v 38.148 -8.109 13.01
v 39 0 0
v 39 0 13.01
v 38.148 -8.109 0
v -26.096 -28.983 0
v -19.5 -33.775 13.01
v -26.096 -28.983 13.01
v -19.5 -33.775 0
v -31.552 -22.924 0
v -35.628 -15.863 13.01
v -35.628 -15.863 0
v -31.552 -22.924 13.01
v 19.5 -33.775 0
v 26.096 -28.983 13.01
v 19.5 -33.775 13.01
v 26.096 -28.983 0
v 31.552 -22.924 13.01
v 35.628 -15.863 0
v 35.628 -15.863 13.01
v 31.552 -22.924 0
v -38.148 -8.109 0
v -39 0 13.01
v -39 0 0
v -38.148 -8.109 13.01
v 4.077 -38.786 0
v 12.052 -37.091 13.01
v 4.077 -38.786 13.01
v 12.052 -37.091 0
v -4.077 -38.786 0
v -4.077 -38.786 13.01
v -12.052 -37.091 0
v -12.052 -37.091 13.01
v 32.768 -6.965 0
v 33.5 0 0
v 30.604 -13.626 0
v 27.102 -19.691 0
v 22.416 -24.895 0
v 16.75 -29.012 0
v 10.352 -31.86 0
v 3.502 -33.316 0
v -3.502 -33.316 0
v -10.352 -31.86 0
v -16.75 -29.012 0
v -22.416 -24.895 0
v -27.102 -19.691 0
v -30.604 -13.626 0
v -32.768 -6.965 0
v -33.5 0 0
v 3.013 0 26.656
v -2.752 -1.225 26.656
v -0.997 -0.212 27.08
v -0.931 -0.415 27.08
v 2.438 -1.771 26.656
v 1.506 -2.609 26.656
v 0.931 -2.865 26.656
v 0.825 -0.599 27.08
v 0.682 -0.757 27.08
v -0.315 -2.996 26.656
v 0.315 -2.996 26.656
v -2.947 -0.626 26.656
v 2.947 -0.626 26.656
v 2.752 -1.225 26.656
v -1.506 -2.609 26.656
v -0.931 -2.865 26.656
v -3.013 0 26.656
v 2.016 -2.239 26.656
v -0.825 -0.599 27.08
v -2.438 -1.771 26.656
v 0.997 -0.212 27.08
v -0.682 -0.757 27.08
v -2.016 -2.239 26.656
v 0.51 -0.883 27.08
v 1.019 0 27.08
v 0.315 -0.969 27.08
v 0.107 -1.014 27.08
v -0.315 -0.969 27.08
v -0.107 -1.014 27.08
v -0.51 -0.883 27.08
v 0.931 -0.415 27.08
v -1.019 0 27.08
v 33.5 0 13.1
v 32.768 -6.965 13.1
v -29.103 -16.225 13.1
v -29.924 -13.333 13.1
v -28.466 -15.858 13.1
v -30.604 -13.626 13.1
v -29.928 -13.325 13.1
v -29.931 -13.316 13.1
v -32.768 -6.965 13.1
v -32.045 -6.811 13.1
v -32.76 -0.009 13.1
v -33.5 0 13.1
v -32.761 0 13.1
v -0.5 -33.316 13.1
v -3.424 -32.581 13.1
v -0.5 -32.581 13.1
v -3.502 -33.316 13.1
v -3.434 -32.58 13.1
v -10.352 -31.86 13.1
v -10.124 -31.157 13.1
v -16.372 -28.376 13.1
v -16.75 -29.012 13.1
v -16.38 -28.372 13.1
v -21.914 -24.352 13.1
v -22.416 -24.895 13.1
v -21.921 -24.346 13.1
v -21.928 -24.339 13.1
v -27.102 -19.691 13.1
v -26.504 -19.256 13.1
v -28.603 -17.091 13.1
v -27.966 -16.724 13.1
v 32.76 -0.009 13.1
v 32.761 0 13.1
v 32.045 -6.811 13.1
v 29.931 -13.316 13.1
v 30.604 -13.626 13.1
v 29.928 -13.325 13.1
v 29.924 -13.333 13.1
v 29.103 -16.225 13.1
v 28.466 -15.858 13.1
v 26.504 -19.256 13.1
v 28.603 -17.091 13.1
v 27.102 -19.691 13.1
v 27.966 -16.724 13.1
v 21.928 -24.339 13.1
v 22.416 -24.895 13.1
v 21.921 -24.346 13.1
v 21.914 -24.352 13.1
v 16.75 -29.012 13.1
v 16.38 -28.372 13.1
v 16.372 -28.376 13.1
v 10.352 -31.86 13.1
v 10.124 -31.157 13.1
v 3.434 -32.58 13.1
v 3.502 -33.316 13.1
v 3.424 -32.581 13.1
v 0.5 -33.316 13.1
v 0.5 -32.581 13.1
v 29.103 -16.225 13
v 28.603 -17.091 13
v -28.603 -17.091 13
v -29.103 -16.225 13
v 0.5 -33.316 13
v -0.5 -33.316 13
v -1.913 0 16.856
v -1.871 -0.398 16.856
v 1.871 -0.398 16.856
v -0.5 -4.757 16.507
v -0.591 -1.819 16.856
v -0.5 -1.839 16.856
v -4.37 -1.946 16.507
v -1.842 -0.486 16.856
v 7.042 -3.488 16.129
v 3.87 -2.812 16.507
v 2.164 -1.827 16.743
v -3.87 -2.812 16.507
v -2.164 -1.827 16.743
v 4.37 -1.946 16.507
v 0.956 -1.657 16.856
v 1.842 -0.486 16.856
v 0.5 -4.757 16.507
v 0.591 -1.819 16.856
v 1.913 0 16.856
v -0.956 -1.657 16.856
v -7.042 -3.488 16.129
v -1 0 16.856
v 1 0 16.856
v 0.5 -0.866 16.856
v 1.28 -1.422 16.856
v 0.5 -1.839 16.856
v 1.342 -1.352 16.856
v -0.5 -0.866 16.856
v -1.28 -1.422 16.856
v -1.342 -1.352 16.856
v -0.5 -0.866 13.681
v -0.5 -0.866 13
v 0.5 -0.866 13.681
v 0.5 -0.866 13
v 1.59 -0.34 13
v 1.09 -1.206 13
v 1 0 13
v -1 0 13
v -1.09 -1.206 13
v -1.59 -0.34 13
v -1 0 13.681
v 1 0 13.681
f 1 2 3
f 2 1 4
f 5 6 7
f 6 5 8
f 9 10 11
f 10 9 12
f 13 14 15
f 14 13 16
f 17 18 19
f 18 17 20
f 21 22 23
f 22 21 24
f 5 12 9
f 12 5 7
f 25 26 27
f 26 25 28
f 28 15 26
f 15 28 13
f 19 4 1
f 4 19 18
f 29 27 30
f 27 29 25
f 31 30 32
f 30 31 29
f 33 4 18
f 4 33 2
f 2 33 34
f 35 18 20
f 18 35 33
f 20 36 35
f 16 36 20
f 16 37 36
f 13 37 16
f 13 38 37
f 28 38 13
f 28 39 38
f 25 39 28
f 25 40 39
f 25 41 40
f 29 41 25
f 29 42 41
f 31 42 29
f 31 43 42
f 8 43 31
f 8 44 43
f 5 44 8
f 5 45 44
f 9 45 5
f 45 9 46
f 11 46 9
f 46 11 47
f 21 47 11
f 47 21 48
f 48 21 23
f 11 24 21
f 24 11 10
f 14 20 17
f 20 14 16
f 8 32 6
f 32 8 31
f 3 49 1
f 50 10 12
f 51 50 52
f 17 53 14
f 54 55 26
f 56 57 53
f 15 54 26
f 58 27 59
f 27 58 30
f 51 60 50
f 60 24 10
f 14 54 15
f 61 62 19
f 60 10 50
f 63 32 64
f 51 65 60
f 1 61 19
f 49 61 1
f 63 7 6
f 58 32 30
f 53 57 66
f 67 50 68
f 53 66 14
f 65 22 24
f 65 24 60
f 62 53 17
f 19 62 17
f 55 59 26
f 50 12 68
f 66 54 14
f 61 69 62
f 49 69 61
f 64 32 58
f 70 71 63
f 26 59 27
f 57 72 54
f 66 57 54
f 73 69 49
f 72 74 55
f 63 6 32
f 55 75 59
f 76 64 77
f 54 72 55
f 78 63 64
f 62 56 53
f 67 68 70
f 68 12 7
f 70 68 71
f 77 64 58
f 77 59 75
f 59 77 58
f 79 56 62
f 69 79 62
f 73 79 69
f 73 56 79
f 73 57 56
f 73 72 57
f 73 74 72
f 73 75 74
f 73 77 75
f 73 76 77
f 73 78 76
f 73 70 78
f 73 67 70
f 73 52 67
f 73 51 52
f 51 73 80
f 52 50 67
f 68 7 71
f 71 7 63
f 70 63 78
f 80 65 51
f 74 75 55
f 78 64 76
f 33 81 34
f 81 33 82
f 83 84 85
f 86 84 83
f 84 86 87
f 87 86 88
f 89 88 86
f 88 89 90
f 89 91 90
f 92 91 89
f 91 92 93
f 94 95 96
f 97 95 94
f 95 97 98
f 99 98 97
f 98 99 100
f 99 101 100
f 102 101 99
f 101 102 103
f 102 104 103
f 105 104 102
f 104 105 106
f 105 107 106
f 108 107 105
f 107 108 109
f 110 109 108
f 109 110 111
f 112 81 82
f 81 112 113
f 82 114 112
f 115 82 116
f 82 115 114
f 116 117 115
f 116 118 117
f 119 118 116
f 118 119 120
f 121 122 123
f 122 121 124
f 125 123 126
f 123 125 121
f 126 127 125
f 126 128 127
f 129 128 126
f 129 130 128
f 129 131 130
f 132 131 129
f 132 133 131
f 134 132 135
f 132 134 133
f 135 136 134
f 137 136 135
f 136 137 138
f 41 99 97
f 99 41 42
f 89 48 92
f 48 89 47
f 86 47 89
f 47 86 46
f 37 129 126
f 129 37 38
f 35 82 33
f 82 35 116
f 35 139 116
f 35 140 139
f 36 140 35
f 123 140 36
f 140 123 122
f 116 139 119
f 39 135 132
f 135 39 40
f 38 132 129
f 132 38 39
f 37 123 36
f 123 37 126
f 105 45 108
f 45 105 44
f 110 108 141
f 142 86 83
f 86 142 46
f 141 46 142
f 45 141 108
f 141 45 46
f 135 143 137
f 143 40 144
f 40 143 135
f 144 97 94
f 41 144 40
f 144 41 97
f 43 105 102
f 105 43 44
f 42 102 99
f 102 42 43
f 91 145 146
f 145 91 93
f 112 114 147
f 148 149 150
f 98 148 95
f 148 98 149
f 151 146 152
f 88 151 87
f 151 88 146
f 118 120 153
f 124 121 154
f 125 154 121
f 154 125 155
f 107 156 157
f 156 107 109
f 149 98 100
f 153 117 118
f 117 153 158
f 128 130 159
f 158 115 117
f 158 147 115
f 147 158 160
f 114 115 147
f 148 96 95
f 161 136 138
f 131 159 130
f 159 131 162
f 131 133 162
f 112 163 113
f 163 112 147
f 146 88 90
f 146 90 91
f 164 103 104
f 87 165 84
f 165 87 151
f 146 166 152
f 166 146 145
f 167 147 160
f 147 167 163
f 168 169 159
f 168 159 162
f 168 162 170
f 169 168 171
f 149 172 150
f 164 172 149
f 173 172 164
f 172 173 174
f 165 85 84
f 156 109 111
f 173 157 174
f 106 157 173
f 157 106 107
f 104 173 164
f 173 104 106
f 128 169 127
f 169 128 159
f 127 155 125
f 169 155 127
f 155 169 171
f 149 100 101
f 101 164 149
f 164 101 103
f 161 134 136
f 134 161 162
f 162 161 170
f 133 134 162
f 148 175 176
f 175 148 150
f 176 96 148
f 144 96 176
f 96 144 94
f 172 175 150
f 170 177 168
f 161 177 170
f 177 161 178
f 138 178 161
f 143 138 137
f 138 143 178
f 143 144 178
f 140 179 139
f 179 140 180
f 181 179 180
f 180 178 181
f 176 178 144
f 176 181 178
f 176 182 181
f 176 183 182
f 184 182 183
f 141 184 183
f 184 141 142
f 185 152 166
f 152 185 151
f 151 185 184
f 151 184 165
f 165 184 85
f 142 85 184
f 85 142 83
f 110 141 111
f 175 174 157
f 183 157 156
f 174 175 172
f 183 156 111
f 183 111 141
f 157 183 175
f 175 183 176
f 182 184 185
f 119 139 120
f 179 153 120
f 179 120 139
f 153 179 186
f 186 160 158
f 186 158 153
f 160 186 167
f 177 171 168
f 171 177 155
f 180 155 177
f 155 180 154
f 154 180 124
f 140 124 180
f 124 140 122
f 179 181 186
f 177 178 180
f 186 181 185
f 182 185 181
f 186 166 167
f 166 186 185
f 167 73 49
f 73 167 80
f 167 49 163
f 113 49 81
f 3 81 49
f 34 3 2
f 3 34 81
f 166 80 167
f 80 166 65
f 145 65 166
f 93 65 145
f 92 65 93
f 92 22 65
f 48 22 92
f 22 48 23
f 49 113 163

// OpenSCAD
difference() {
	union() {
		difference() {
			union() {
				cylinder(h = 13.0000000000, r = 39.0000000000);
				hull() {
					translate(v = [0, 0, 13.0000000000]) {
						hull() {
							cylinder(h = 0.0100000000, r = 39.0000000000);
							translate(v = [0, 0, 4.3830123647]) {
								cylinder(h = 0.0100000000, r = 11.7000000000);
							}
						}
					}
					translate(v = [0, 0, 17.3830123647]) {
						sphere(r = 9.7500000000);
					}
				}
			}
			union() {
				translate(v = [0, 0, -0.1000000000]) {
					cylinder(h = 13.2000000000, r = 33.5000000000);
				}
				translate(v = [0, 0, 13.0000000000]) {
					hull() {
						cylinder(h = 0.0100000000, r = 33.5000000000);
						translate(v = [0, 0, -14.3435148651]) {
							sphere(r = 18.3000000000);
						}
					}
				}
			}
		}
		union() {
			intersection() {
				union() {
					rotate(a = [0, 0, 0.0000000000]) {
						translate(v = [0, 0, 13.0000000000]) {
							translate(v = [-0.5000000000, 0, 0]) {
								cube(size = [1.0000000000, 39.0000000000, 4.1251881080]);
							}
						}
					}
					rotate(a = [0, 0, 0.0000000000]) {
						translate(v = [0, 0, 13.0000000000]) {
							translate(v = [-0.5000000000, 0, 0]) {
								rotate(a = [90, 0, 90]) {
									linear_extrude(height = 1.0000000000) {
										polygon(points = [[0, 0], [1.5469455405, 0], [0, 1.5469455405]]);
									}
								}
							}
						}
					}
				}
				hull() {
					translate(v = [0, 0, 13.0000000000]) {
						hull() {
							cylinder(h = 0.0100000000, r = 39.0000000000);
							translate(v = [0, 0, 4.3830123647]) {
								cylinder(h = 0.0100000000, r = 11.7000000000);
							}
						}
					}
					translate(v = [0, 0, 17.3830123647]) {
						sphere(r = 9.7500000000);
					}
				}
			}
			intersection() {
				union() {
					rotate(a = [0, 0, 60.0000000000]) {
						translate(v = [0, 0, 13.0000000000]) {
							translate(v = [-0.5000000000, 0, 0]) {
								cube(size = [1.0000000000, 39.0000000000, 4.1251881080]);
							}
						}
					}
					rotate(a = [0, 0, 60.0000000000]) {
						translate(v = [0, 0, 13.0000000000]) {
							translate(v = [-0.5000000000, 0, 0]) {
								rotate(a = [90, 0, 90]) {
									linear_extrude(height = 1.0000000000) {
										polygon(points = [[0, 0], [1.5469455405, 0], [0, 1.5469455405]]);
									}
								}
							}
						}
					}
				}
				hull() {
					translate(v = [0, 0, 13.0000000000]) {
						hull() {
							cylinder(h = 0.0100000000, r = 39.0000000000);
							translate(v = [0, 0, 4.3830123647]) {
								cylinder(h = 0.0100000000, r = 11.7000000000);
							}
						}
					}
					translate(v = [0, 0, 17.3830123647]) {
						sphere(r = 9.7500000000);
					}
				}
			}
			intersection() {
				union() {
					rotate(a = [0, 0, 120.0000000000]) {
						translate(v = [0, 0, 13.0000000000]) {
							translate(v = [-0.5000000000, 0, 0]) {
								cube(size = [1.0000000000, 39.0000000000, 4.1251881080]);
							}
						}
					}
					rotate(a = [0, 0, 120.0000000000]) {
						translate(v = [0, 0, 13.0000000000]) {
							translate(v = [-0.5000000000, 0, 0]) {
								rotate(a = [90, 0, 90]) {
									linear_extrude(height = 1.0000000000) {
										polygon(points = [[0, 0], [1.5469455405, 0], [0, 1.5469455405]]);
									}
								}
							}
						}
					}
				}
				hull() {
					translate(v = [0, 0, 13.0000000000]) {
						hull() {
							cylinder(h = 0.0100000000, r = 39.0000000000);
							translate(v = [0, 0, 4.3830123647]) {
								cylinder(h = 0.0100000000, r = 11.7000000000);
							}
						}
					}
					translate(v = [0, 0, 17.3830123647]) {
						sphere(r = 9.7500000000);
					}
				}
			}
			intersection() {
				union() {
					rotate(a = [0, 0, 180.0000000000]) {
						translate(v = [0, 0, 13.0000000000]) {
							translate(v = [-0.5000000000, 0, 0]) {
								cube(size = [1.0000000000, 39.0000000000, 4.1251881080]);
							}
						}
					}
					rotate(a = [0, 0, 180.0000000000]) {
						translate(v = [0, 0, 13.0000000000]) {
							translate(v = [-0.5000000000, 0, 0]) {
								rotate(a = [90, 0, 90]) {
									linear_extrude(height = 1.0000000000) {
										polygon(points = [[0, 0], [1.5469455405, 0], [0, 1.5469455405]]);
									}
								}
							}
						}
					}
				}
				hull() {
					translate(v = [0, 0, 13.0000000000]) {
						hull() {
							cylinder(h = 0.0100000000, r = 39.0000000000);
							translate(v = [0, 0, 4.3830123647]) {
								cylinder(h = 0.0100000000, r = 11.7000000000);
							}
						}
					}
					translate(v = [0, 0, 17.3830123647]) {
						sphere(r = 9.7500000000);
					}
				}
			}
			intersection() {
				union() {
					rotate(a = [0, 0, 240.0000000000]) {
						translate(v = [0, 0, 13.0000000000]) {
							translate(v = [-0.5000000000, 0, 0]) {
								cube(size = [1.0000000000, 39.0000000000, 4.1251881080]);
							}
						}
					}
					rotate(a = [0, 0, 240.0000000000]) {
						translate(v = [0, 0, 13.0000000000]) {
							translate(v = [-0.5000000000, 0, 0]) {
								rotate(a = [90, 0, 90]) {
									linear_extrude(height = 1.0000000000) {
										polygon(points = [[0, 0], [1.5469455405, 0], [0, 1.5469455405]]);
									}
								}
							}
						}
					}
				}
				hull() {
					translate(v = [0, 0, 13.0000000000]) {
						hull() {
							cylinder(h = 0.0100000000, r = 39.0000000000);
							translate(v = [0, 0, 4.3830123647]) {
								cylinder(h = 0.0100000000, r = 11.7000000000);
							}
						}
					}
					translate(v = [0, 0, 17.3830123647]) {
						sphere(r = 9.7500000000);
					}
				}
			}
			intersection() {
				union() {
					rotate(a = [0, 0, 300.0000000000]) {
						translate(v = [0, 0, 13.0000000000]) {
							translate(v = [-0.5000000000, 0, 0]) {
								cube(size = [1.0000000000, 39.0000000000, 4.1251881080]);
							}
						}
					}
					rotate(a = [0, 0, 300.0000000000]) {
						translate(v = [0, 0, 13.0000000000]) {
							translate(v = [-0.5000000000, 0, 0]) {
								rotate(a = [90, 0, 90]) {
									linear_extrude(height = 1.0000000000) {
										polygon(points = [[0, 0], [1.5469455405, 0], [0, 1.5469455405]]);
									}
								}
							}
						}
					}
				}
				hull() {
					translate(v = [0, 0, 13.0000000000]) {
						hull() {
							cylinder(h = 0.0100000000, r = 39.0000000000);
							translate(v = [0, 0, 4.3830123647]) {
								cylinder(h = 0.0100000000, r = 11.7000000000);
							}
						}
					}
					translate(v = [0, 0, 17.3830123647]) {
						sphere(r = 9.7500000000);
					}
				}
			}
		}
	}
	translate(v = [-100, 0, -10]) {
		cube(size = [200, 200, 200]);
	}
}
